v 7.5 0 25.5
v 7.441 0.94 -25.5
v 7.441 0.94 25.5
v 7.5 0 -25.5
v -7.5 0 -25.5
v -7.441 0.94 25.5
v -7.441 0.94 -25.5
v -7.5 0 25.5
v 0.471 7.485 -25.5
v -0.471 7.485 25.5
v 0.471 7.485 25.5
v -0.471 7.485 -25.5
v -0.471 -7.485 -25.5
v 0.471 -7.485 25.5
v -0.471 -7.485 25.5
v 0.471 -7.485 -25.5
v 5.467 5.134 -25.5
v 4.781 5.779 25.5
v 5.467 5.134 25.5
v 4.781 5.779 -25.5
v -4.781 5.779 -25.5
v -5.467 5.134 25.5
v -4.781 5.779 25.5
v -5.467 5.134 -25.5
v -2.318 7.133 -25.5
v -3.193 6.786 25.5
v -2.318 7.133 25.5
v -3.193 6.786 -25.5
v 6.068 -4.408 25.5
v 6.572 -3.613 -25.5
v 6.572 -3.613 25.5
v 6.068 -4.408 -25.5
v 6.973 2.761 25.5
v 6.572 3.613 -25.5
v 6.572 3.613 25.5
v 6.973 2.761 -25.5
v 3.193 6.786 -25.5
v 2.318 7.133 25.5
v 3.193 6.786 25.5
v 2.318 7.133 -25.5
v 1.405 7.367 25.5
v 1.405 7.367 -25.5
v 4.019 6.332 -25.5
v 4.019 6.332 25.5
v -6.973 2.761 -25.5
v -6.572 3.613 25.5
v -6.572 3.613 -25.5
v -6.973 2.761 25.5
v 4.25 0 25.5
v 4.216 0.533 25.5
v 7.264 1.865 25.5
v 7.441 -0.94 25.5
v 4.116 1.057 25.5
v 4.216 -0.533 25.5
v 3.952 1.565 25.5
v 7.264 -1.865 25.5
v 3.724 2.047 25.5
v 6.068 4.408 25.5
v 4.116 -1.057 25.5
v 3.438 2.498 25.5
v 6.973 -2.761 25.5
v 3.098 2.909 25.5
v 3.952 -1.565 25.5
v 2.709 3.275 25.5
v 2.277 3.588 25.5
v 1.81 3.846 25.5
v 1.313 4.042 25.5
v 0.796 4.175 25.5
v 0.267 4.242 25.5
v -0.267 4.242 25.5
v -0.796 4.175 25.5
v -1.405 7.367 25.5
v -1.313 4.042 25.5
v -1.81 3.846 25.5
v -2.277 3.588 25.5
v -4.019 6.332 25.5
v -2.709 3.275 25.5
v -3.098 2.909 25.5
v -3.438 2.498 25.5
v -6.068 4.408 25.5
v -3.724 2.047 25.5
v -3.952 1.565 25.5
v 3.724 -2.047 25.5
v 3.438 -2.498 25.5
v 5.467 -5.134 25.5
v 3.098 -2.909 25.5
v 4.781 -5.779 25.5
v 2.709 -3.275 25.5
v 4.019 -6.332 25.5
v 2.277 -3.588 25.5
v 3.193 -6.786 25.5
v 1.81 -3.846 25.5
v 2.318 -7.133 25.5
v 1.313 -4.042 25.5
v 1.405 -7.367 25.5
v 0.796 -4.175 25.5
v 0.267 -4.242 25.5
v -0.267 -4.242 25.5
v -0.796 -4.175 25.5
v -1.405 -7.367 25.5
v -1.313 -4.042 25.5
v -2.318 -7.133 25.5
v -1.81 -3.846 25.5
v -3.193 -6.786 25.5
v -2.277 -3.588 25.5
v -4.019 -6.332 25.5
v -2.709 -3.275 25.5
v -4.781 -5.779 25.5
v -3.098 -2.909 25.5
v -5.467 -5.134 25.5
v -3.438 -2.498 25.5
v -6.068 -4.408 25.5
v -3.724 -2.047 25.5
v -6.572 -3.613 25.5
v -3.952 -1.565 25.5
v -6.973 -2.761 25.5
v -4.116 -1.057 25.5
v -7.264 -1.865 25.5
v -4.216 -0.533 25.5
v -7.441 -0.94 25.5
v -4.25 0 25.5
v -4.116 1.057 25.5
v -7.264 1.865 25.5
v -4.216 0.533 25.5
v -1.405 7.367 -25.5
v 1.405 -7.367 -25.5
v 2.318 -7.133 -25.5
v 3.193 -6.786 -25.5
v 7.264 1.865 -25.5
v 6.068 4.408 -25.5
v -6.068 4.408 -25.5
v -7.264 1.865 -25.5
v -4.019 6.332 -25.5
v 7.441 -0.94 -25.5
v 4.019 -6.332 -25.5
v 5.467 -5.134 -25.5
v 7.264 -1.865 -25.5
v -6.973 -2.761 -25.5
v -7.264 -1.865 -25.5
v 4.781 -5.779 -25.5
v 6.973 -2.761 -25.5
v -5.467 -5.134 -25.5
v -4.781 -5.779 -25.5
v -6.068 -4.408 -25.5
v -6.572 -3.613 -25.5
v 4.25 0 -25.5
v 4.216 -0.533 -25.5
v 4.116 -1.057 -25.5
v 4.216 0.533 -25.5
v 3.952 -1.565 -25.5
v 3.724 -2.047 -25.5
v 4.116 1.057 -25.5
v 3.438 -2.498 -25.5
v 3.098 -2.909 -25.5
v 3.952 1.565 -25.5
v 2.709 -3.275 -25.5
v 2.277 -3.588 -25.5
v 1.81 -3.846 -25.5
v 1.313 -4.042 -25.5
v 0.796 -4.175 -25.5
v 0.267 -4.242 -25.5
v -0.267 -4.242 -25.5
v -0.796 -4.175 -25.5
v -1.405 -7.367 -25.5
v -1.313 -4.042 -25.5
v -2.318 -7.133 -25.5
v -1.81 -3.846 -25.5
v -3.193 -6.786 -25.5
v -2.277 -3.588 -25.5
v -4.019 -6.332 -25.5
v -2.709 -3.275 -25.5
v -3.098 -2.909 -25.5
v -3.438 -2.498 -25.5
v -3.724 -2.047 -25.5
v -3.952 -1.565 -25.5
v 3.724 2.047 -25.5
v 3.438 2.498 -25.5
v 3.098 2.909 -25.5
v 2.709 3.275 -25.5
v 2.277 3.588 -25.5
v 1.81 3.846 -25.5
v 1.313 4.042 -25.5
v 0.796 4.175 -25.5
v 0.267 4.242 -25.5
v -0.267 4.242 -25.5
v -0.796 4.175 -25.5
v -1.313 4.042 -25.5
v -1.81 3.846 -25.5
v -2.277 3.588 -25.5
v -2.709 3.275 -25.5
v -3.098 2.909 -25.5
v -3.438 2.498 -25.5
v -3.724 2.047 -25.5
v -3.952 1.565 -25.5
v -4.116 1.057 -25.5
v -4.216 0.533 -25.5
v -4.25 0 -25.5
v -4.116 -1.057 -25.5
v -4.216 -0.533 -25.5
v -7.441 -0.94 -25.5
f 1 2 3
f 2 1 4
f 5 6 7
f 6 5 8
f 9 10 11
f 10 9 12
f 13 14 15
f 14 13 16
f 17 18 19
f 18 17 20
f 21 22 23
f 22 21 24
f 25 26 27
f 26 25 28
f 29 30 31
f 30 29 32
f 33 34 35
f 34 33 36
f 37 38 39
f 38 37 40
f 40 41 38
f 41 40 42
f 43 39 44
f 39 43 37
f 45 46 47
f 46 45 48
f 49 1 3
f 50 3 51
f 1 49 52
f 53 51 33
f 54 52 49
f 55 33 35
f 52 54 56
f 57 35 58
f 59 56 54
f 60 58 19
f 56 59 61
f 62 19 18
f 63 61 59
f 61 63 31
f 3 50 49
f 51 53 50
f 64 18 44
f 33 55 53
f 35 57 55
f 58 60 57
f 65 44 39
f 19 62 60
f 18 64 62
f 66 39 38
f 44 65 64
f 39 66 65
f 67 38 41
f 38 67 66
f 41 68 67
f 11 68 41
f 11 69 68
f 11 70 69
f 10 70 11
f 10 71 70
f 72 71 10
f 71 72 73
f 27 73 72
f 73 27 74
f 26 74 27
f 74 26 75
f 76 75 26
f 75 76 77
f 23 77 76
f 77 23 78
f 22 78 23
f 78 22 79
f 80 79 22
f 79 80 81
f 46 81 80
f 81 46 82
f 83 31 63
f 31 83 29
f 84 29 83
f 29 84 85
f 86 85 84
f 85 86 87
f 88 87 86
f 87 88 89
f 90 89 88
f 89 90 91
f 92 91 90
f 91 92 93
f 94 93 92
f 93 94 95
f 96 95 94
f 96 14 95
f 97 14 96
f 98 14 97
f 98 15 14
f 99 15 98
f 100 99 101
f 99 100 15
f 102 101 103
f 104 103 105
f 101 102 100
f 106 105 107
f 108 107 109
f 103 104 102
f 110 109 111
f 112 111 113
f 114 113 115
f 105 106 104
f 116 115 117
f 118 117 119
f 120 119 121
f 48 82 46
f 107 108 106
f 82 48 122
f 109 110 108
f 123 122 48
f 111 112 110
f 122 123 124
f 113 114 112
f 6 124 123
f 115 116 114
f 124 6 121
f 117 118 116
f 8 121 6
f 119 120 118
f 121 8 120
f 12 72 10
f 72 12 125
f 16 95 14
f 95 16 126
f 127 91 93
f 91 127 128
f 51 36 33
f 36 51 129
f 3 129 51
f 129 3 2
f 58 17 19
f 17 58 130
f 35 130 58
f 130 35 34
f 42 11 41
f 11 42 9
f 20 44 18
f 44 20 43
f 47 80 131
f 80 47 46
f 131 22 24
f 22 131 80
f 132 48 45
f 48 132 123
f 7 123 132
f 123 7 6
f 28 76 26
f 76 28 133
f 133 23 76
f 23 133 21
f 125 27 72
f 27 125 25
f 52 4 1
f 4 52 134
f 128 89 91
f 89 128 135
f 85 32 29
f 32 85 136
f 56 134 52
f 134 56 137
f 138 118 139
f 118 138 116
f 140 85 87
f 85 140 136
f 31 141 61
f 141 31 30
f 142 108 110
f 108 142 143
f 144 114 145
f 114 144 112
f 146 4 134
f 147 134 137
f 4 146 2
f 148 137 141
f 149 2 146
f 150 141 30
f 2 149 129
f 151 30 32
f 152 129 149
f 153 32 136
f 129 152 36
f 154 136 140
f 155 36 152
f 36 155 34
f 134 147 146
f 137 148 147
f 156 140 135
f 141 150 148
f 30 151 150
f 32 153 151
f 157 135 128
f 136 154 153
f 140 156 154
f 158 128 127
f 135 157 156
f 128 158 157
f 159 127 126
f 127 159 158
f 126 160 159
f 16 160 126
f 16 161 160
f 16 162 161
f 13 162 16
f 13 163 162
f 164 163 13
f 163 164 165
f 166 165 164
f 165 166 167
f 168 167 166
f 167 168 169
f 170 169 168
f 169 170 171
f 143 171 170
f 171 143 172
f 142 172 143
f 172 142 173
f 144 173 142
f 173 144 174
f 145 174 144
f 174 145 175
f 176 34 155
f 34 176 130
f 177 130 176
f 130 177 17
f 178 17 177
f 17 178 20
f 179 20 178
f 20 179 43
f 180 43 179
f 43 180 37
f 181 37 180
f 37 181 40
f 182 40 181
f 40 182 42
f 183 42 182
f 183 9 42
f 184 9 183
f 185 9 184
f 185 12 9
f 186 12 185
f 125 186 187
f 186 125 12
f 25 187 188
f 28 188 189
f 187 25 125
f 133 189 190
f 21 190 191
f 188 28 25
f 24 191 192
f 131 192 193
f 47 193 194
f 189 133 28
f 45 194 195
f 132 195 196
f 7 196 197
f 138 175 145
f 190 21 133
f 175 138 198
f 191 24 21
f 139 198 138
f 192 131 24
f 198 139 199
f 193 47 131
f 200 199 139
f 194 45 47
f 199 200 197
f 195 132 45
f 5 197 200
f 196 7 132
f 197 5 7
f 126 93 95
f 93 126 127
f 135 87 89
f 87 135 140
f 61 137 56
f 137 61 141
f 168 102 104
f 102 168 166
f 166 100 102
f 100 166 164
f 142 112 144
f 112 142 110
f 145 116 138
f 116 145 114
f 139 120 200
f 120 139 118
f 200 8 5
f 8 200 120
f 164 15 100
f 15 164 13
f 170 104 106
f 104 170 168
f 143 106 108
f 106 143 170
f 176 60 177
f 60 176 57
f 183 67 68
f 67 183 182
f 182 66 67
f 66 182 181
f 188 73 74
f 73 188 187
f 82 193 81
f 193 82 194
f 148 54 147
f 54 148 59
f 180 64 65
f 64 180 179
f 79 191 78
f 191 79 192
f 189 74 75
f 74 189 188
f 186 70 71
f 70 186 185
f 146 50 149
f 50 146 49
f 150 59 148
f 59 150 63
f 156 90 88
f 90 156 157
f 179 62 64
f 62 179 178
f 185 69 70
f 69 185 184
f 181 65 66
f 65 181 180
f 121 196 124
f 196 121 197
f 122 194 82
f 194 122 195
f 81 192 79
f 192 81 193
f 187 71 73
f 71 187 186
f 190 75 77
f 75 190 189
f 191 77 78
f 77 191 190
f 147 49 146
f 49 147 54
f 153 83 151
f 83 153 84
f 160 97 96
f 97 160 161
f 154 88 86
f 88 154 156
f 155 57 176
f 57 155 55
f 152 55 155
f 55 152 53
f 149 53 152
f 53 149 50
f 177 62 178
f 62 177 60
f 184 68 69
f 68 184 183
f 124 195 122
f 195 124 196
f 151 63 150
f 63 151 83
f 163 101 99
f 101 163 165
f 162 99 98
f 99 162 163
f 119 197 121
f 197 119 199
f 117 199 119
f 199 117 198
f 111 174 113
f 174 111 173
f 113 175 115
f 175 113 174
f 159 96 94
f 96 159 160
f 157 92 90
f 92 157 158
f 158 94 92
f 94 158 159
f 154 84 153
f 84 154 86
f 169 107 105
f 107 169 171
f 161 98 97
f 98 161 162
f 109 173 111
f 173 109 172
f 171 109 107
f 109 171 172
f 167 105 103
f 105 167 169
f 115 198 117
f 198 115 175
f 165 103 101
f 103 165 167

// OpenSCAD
$fn = 50;


difference() {
	union() {
		translate(v = [0, 0, -25.5000000000]) {
			cylinder(h = 51, r = 7.5000000000);
		}
	}
	union() {
		translate(v = [0, 0, -100.0000000000]) {
			cylinder(h = 200, r = 4.2500000000);
		}
	}
}
